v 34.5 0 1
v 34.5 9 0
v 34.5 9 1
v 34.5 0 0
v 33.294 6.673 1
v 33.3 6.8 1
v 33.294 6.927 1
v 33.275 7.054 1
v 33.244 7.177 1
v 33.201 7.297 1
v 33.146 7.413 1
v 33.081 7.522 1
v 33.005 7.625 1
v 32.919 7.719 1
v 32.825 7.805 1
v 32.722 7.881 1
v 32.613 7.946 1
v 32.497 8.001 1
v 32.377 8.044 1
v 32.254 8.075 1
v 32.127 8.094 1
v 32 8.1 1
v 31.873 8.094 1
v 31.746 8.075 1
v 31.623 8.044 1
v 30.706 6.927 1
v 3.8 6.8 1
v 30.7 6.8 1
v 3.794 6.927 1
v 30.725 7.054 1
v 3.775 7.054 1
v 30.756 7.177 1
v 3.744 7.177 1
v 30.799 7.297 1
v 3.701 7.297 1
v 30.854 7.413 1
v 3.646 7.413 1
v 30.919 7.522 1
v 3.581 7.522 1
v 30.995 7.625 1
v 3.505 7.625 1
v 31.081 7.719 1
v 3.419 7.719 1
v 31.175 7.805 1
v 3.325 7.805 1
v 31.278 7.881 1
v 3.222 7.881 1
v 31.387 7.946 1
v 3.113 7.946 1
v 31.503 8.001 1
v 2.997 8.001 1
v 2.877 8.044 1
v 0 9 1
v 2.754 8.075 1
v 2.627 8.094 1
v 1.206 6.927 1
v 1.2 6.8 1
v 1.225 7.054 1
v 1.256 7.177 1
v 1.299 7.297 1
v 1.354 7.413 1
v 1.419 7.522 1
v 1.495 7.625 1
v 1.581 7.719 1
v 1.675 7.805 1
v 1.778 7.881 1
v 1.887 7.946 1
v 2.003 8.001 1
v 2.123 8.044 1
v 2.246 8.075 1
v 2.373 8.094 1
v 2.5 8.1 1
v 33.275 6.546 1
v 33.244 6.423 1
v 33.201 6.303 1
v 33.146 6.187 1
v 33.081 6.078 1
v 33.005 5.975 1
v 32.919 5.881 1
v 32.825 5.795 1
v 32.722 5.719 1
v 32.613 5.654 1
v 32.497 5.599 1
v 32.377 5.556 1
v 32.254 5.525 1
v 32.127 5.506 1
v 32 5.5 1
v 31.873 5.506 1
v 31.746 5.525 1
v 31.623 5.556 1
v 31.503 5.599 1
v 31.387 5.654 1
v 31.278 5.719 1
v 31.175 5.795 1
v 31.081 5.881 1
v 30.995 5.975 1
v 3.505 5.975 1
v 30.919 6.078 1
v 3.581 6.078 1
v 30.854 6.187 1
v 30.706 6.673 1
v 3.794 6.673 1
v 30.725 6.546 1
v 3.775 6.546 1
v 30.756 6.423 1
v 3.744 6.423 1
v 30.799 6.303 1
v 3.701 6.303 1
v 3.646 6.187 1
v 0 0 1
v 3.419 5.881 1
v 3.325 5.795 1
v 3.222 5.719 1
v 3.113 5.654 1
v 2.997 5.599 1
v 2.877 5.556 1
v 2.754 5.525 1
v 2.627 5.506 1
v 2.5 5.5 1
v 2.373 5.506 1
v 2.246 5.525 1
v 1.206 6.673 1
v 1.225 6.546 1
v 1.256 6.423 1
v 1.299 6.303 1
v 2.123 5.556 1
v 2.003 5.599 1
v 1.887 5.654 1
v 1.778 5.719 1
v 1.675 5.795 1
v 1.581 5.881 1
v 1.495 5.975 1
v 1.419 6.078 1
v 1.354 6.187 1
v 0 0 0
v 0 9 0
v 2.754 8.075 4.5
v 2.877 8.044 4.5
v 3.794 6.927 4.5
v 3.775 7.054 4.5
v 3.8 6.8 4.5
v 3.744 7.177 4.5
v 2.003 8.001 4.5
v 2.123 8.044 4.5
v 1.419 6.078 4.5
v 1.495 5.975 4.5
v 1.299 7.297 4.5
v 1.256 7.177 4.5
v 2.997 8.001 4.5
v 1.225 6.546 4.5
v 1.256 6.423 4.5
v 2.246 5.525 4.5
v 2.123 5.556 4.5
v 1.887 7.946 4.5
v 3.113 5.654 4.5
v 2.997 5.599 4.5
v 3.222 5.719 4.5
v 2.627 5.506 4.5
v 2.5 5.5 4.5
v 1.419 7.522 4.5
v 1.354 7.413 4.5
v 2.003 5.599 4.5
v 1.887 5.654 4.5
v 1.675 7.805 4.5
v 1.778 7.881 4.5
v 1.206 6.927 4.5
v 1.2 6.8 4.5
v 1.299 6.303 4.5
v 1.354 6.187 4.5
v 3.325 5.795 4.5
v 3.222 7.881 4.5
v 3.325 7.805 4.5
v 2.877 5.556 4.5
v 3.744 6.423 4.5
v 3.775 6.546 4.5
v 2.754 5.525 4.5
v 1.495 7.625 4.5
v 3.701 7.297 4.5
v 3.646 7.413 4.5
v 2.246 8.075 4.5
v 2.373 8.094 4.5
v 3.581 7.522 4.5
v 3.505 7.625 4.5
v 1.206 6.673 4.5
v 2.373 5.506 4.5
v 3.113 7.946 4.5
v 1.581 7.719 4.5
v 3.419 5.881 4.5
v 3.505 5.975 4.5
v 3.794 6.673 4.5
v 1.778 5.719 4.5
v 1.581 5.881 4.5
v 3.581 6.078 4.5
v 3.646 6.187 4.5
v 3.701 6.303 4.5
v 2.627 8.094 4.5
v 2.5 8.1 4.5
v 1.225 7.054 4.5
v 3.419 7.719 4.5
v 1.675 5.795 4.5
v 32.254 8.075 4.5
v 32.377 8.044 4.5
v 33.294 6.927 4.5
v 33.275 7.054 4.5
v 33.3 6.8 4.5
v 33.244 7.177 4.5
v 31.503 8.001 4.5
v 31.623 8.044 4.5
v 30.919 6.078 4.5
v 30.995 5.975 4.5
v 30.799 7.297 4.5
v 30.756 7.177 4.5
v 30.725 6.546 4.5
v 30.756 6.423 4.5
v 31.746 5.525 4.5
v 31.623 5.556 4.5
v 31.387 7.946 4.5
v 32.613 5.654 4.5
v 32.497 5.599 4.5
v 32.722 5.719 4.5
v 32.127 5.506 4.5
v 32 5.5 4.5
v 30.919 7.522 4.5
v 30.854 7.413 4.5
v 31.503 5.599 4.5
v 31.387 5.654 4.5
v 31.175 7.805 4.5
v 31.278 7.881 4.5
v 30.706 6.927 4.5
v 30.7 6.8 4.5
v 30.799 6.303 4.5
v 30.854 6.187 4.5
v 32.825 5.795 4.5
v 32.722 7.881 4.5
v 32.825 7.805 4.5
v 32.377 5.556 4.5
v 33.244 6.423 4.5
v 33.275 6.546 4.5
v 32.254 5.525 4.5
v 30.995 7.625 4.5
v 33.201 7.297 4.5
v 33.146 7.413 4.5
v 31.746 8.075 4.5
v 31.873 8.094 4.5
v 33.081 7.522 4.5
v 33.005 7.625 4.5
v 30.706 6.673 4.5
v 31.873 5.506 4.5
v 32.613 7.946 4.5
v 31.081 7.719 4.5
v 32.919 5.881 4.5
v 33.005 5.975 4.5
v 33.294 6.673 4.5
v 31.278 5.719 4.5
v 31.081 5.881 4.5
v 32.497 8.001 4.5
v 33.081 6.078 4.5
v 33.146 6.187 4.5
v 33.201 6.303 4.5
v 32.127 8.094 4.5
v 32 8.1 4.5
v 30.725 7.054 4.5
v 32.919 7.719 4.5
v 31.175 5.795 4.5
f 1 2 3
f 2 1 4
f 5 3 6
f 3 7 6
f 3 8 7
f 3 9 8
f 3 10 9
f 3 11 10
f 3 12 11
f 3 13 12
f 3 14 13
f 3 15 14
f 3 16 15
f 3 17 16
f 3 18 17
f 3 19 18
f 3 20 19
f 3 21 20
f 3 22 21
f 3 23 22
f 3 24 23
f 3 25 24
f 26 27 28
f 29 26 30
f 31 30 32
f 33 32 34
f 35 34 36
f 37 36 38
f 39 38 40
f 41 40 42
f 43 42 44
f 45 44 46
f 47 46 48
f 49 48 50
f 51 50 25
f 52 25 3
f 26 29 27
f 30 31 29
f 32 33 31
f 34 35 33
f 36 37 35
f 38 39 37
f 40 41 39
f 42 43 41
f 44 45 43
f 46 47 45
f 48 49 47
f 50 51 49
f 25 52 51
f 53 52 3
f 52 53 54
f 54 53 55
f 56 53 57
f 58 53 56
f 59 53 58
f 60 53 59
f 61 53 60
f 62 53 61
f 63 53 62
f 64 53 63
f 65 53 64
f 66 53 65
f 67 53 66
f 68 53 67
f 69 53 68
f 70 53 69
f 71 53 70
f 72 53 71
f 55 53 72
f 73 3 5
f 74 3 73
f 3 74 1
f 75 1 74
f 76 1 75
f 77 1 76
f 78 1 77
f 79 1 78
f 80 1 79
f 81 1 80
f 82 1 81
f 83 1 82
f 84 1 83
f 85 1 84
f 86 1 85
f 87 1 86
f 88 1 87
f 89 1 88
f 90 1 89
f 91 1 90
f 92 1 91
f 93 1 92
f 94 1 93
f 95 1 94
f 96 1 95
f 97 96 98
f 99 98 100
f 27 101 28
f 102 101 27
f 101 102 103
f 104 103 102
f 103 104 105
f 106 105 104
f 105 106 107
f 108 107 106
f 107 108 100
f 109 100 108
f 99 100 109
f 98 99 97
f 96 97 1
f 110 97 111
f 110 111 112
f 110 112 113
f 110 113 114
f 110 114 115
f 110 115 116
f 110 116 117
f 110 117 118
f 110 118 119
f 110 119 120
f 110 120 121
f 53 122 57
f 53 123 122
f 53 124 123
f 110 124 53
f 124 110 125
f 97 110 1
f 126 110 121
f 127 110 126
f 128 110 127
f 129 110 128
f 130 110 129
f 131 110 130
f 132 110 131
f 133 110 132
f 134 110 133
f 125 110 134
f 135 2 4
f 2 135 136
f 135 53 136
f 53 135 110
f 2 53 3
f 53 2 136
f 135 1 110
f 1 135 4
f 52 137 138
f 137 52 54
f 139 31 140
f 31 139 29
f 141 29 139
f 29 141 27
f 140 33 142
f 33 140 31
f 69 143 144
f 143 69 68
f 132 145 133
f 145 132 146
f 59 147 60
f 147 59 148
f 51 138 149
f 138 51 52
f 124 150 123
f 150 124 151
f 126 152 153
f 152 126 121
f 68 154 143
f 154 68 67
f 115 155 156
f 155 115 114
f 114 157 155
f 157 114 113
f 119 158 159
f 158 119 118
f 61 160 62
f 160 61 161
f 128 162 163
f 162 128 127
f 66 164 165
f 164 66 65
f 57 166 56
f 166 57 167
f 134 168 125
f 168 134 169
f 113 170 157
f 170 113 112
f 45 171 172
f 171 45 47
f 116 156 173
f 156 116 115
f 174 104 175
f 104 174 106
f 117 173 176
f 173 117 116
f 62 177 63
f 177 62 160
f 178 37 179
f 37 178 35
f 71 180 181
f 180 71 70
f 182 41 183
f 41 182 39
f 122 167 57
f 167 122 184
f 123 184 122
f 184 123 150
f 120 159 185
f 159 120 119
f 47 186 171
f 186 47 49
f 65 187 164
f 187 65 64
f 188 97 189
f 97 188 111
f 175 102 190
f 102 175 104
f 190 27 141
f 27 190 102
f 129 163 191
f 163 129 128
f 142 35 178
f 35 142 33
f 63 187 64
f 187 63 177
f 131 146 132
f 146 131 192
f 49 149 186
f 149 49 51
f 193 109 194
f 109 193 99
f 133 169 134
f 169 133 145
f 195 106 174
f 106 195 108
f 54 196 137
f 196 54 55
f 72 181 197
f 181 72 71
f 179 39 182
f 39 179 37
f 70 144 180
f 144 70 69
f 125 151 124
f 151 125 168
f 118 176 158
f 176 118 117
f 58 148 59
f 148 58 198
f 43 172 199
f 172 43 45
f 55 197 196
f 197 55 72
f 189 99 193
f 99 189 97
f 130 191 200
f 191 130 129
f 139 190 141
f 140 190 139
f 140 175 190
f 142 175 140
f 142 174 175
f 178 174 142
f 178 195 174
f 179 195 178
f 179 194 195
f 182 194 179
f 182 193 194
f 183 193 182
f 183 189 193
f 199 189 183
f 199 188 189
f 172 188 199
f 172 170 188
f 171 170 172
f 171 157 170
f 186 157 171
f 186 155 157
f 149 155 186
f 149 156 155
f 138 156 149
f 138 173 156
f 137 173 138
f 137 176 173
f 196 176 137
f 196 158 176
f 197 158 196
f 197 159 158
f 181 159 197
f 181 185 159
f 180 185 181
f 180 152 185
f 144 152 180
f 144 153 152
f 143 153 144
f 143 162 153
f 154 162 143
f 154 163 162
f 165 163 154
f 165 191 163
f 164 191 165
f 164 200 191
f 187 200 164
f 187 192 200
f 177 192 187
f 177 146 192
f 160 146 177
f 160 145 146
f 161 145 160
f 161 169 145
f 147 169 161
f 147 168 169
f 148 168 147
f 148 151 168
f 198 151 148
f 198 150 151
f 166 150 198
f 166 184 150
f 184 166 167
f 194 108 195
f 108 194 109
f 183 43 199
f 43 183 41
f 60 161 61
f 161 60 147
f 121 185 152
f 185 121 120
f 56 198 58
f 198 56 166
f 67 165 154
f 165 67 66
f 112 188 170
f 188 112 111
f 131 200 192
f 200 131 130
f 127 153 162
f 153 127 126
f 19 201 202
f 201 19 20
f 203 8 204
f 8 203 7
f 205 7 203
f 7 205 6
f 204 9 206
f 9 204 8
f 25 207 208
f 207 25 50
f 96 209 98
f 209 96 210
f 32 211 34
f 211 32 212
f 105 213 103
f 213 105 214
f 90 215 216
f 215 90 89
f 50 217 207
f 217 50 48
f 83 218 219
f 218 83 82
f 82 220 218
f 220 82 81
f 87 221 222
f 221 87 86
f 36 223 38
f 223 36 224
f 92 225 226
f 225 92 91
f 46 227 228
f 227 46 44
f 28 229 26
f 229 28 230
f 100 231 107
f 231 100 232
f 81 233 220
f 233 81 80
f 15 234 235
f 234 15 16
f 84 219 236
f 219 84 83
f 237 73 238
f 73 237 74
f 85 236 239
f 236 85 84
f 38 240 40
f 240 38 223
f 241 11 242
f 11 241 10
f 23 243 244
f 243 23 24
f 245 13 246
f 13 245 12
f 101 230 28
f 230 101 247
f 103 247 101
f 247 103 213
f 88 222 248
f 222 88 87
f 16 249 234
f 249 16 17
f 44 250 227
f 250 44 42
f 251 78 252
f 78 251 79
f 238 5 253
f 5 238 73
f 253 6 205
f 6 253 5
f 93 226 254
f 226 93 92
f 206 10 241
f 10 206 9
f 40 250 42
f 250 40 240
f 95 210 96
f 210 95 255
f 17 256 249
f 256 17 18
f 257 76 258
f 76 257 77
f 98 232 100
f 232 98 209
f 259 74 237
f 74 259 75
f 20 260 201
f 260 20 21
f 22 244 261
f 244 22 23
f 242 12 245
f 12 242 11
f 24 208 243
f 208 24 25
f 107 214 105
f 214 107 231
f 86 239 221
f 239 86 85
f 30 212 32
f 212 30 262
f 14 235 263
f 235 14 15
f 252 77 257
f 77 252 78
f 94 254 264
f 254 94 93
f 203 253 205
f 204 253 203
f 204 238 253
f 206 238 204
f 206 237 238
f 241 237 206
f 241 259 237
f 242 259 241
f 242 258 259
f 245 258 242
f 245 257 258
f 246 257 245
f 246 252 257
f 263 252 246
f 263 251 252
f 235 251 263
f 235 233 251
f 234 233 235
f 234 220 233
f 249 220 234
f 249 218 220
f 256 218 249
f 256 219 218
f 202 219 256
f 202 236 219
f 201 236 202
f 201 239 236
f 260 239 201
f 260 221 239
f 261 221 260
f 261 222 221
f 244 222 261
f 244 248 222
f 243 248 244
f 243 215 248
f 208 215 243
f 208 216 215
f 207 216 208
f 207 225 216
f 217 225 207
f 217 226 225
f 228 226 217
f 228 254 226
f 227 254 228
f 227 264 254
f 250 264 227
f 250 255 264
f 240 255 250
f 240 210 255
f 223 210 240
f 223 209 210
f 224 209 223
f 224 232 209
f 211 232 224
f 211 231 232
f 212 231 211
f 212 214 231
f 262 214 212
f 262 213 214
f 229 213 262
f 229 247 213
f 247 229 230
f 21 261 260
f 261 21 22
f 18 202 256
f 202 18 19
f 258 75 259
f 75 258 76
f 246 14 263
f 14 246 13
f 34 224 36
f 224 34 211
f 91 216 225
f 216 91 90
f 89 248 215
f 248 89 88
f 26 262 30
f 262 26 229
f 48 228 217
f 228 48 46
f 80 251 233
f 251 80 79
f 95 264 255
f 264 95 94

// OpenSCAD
// Small bezel piece to cover the bottom part of the 1.3" side screen
 
$fn=64;

width        = 34.5;
depth        = 9.0;
thickness    = 1.0;

peg_height   = 3.5;
peg_diameter = 2.6;
peg_radius   = peg_diameter/2;

peg_top_offset  = 0.9;
peg_side_offset = 1.2;

cube([width, depth, thickness]);

translate([peg_side_offset+peg_radius, depth-peg_top_offset-peg_radius, thickness])
  cylinder( h=peg_height, d=peg_diameter );
translate([width-peg_side_offset-peg_radius, depth-peg_top_offset-peg_radius, thickness])
  cylinder( h=peg_height, d=peg_diameter );  
